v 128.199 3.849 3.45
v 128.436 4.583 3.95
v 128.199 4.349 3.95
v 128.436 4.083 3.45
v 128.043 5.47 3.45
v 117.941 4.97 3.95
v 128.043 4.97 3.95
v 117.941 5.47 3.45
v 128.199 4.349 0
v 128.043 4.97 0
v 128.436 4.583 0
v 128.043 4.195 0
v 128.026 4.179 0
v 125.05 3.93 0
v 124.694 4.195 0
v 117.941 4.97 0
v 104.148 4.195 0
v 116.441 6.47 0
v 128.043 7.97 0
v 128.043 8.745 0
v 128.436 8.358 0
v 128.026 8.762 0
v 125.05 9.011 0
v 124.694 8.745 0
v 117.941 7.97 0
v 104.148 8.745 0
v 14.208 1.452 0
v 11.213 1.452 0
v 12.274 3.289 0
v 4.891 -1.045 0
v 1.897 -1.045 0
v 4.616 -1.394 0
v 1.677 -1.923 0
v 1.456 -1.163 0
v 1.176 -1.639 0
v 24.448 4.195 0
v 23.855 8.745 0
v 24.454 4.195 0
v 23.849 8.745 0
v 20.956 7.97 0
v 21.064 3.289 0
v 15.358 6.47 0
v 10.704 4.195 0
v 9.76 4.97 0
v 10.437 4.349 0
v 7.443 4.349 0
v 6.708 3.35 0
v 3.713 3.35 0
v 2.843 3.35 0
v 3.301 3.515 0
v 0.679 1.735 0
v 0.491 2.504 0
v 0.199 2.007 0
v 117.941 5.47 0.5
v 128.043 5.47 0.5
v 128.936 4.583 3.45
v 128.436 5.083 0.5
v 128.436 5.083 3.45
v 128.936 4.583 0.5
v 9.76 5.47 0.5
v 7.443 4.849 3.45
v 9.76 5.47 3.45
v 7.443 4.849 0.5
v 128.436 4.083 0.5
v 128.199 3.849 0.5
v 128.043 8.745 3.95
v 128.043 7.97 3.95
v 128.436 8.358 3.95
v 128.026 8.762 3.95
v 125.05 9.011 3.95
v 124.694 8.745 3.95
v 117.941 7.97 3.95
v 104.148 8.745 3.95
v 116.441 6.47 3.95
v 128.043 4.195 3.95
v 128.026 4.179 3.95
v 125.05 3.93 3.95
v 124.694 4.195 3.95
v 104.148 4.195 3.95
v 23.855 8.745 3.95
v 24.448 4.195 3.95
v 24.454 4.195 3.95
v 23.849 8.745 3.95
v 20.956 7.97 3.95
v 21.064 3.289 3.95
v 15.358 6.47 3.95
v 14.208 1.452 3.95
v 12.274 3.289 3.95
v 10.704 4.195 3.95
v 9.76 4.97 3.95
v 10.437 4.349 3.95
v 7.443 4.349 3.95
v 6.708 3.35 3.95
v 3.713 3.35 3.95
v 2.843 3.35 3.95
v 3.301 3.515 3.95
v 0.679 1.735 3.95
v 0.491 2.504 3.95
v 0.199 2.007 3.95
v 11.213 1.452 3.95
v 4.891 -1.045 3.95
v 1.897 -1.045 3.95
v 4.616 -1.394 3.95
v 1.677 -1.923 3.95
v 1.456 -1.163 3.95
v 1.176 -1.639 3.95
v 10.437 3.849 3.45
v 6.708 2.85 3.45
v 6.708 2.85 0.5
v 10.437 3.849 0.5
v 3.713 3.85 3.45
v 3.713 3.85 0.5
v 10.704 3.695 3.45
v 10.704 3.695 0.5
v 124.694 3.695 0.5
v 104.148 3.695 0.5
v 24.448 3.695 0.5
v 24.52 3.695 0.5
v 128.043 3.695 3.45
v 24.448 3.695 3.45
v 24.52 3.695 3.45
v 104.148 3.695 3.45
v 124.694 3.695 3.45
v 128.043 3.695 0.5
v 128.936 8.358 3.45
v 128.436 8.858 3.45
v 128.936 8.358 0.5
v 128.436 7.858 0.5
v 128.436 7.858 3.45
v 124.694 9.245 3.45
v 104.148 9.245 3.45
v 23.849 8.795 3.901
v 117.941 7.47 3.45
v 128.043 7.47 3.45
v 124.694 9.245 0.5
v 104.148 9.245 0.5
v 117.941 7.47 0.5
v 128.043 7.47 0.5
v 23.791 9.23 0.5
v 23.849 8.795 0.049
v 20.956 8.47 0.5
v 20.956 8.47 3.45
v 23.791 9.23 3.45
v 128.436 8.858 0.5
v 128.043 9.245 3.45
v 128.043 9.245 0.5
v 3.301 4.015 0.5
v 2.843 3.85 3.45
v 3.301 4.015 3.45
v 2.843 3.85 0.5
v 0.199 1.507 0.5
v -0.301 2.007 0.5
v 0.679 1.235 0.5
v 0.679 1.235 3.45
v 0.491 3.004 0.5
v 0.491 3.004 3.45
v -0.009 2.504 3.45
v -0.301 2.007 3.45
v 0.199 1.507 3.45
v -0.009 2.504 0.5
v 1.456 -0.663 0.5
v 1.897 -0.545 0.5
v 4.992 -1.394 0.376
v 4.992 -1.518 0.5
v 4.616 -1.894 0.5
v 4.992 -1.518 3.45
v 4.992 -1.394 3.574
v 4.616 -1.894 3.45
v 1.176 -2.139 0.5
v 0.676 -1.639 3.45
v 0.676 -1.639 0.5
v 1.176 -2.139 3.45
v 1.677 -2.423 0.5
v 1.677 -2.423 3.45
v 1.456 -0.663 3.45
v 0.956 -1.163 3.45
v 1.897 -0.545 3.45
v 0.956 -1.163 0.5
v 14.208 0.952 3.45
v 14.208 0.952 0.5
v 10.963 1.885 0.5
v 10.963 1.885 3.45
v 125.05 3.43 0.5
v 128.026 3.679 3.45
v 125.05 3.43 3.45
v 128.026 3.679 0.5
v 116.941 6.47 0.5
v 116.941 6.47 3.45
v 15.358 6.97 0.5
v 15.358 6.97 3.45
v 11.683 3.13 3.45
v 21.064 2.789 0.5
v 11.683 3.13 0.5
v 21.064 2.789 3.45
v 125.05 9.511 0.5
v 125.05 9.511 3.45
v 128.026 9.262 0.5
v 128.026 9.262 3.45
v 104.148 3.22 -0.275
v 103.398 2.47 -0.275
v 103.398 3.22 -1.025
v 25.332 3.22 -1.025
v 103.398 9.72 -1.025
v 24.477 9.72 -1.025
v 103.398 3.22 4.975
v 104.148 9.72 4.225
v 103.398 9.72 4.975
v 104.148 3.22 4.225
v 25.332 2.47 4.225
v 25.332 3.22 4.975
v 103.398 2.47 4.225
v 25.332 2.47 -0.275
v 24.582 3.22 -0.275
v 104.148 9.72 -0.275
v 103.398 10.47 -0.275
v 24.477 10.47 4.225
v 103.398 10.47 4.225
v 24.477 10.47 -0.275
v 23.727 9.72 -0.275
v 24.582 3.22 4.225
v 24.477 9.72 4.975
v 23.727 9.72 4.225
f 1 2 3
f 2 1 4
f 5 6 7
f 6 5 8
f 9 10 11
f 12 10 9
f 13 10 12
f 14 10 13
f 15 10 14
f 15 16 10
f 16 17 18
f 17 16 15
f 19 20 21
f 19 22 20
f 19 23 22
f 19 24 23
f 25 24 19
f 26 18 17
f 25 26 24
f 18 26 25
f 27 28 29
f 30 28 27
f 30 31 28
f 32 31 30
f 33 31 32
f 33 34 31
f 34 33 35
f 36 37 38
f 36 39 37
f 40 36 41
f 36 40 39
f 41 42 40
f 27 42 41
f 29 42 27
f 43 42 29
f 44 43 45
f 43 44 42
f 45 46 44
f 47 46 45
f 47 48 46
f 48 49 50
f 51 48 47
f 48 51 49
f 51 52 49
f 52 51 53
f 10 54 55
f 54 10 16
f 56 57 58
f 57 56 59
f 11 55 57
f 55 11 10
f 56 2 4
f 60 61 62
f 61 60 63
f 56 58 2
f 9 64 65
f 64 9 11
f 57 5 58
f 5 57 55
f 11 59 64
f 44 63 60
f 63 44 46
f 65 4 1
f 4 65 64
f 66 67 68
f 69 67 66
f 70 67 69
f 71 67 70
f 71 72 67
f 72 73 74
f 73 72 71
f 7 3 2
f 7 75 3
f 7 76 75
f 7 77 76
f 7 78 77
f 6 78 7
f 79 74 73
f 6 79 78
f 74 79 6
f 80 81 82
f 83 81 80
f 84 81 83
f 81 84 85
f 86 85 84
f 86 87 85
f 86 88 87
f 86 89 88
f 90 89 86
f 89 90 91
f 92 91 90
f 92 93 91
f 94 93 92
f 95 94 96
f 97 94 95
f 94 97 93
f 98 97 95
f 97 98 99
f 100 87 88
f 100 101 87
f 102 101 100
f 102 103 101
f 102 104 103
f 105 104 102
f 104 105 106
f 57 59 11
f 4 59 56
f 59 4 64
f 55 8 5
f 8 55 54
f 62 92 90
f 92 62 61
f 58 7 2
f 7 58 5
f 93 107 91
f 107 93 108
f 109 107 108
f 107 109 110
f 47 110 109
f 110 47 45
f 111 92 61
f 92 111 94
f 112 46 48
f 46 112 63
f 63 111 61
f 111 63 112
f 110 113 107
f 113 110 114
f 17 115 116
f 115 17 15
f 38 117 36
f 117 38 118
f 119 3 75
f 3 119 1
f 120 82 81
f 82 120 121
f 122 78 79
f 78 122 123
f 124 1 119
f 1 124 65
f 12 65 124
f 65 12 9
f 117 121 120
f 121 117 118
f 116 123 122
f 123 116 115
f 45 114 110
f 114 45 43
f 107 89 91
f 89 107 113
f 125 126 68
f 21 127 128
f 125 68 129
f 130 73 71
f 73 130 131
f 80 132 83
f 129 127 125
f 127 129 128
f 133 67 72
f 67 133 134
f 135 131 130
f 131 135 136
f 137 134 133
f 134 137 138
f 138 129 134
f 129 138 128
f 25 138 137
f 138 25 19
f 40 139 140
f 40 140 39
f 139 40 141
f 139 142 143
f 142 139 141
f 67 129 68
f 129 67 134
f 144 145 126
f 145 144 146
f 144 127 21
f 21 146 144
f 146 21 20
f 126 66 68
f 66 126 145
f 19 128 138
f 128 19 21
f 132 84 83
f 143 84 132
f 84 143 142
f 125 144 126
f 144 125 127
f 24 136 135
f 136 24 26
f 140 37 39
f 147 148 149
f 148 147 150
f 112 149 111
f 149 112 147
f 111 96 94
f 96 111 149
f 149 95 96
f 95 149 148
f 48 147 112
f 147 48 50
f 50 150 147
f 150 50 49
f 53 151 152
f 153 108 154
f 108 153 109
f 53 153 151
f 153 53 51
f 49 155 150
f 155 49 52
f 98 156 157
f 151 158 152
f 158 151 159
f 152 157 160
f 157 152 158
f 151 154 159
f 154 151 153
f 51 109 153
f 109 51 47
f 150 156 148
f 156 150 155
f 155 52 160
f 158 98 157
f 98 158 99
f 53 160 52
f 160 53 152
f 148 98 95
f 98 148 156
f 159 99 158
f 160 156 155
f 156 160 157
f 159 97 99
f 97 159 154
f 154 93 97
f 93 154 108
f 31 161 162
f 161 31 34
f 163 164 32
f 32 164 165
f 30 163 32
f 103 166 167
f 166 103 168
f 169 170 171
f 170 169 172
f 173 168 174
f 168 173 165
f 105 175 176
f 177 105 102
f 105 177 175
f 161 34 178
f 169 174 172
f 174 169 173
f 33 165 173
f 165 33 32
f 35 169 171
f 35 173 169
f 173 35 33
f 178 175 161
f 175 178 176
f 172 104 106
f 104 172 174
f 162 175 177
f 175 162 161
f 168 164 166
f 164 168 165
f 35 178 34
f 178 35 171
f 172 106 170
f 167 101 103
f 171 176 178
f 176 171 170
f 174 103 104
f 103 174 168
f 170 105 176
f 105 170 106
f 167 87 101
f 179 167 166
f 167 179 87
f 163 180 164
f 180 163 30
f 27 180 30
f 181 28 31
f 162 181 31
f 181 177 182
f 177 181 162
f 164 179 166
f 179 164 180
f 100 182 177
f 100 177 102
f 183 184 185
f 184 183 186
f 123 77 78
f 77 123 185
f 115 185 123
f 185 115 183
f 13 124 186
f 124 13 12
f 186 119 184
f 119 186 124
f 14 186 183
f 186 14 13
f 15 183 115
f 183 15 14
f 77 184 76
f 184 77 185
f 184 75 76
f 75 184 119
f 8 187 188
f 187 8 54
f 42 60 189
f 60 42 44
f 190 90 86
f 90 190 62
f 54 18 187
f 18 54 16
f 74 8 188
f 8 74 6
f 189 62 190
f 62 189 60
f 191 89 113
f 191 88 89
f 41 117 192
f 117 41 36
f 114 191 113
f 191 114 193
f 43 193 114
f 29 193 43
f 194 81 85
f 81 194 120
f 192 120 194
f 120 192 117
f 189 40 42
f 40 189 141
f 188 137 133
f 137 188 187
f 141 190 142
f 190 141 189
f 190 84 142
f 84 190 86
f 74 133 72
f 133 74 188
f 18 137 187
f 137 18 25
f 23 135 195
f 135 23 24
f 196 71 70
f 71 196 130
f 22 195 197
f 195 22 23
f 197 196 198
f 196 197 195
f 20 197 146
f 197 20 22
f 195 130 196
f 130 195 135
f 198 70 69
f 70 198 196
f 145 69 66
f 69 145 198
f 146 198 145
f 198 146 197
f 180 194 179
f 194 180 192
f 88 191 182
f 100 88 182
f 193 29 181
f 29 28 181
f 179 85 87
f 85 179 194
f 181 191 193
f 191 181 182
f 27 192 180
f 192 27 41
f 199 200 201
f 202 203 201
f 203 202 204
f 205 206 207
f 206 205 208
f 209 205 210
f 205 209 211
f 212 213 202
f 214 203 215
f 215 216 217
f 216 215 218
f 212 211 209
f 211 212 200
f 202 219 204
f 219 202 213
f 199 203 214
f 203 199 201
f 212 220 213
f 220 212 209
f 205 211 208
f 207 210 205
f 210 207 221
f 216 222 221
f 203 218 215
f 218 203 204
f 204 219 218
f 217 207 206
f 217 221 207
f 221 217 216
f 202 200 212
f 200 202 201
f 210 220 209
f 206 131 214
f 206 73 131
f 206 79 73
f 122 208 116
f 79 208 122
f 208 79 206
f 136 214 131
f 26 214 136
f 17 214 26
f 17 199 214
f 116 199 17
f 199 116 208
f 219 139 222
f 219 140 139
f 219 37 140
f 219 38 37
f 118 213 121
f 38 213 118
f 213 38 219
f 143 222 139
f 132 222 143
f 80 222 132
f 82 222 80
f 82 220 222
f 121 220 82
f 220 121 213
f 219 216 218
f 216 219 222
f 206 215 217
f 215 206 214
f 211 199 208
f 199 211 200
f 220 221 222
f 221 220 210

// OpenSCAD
// models/fossil_support.scad
// One closed 2D polygon extruded to thickness.
// Both forked ends come from the same point generator.

// ---------- Public parameters (mm) ----------
total_length = 130;
body_width = 5.55;
thickness = 3.95;
thick_body_width = 8;
thick_thickness = 6;
middle_chamfer = 0.75;
thin_chamfer = 0.5;

lower_fork_length = 15;
upper_fork_length = 15;
fork_gap_width = 2.0;
fork_depth = 4.0;

bend_angle = 15;
bend_location = 25;
upper_bend_angle = 0;   // set to 0 for the original single-bend overall shape
upper_bend_location = 25;

// ---------- Vector helpers ----------
function v_add(a, b) = [a[0] + b[0], a[1] + b[1]];
function v_sub(a, b) = [a[0] - b[0], a[1] - b[1]];
function v_scale(v, s) = [v[0] * s, v[1] * s];
function v_perp(v) = [-v[1], v[0]];
function v_dir(angle_deg) = [cos(angle_deg), sin(angle_deg)];
function cross2(a, b) = a[0] * b[1] - a[1] * b[0];
function rev(points) = [for (i = [len(points) - 1 : -1 : 0]) points[i]];

function line_intersection(p, r, q, s) =
  let(rxs = cross2(r, s))
  abs(rxs) < 1e-9
    ? p
    : v_add(p, v_scale(r, cross2(v_sub(q, p), s) / rxs));

function frame_point(origin, axis, normal, p) =
  v_add(origin, v_add(v_scale(axis, p[0]), v_scale(normal, p[1])));

function transform_points(points, origin, axis, normal) =
  [for (p = points) frame_point(origin, axis, normal, p)];

function safe_chamfer(requested, width, height) =
  max(0, min(requested, width / 2 - 0.01, height / 2 - 0.01));

// Local fork boundary from top root to bottom root.
// Root is at x = 0 and tip is at x = fork_length.
function fork_points(fork_length, width, gap_width, fork_depth) =
  let(
    outer_y = width / 2,
    inner_y = gap_width / 2,
    prong_width = (width - gap_width) / 2,
    tip_round = min(prong_width * 0.55, 0.9),
    slot_root_r = min(inner_y, 1.0),
    slot_root_x = min(max(fork_depth, 3.5), fork_length - 3.0),
    nub_height = max(0.28, prong_width * 0.14),
    nub_start = min(fork_length - 3.0, slot_root_x + (fork_length - slot_root_x) * 0.58),
    nub_end = min(fork_length - 1.8, nub_start + max(0.35, fork_length * 0.025)),
    tip_mid_y = inner_y + prong_width / 2
  ) [
    [0, outer_y],
    [nub_start, outer_y],
    [nub_end, outer_y + nub_height],
    [fork_length - tip_round, outer_y],
    [fork_length, tip_mid_y],
    [fork_length - tip_round, inner_y],
    [slot_root_x, inner_y],
    [slot_root_x - slot_root_r, 0],
    [slot_root_x, -inner_y],
    [fork_length - tip_round, -inner_y],
    [fork_length, -tip_mid_y],
    [fork_length - tip_round, -outer_y],
    [nub_end, -(outer_y + nub_height)],
    [nub_start, -outer_y],
    [0, -outer_y]
  ];

// ---------- Centerline geometry ----------
lower_axis = v_dir(bend_angle);
middle_axis = [1, 0];
upper_axis = v_dir(upper_bend_angle);

lower_normal = v_perp(lower_axis);
middle_normal = v_perp(middle_axis);
upper_normal = v_perp(upper_axis);

lower_tip = [0, 0];
lower_root = v_add(lower_tip, v_scale(lower_axis, lower_fork_length));
lower_bend = v_add(lower_tip, v_scale(lower_axis, bend_location));

middle_length = total_length - bend_location - upper_bend_location;
upper_bend = v_add(lower_bend, v_scale(middle_axis, middle_length));
upper_tip = v_add(upper_bend, v_scale(upper_axis, upper_bend_location));
upper_root = v_add(upper_tip, v_scale(upper_axis, -upper_fork_length));

// ---------- Four non-fork polygon points ----------
lower_top_bend = line_intersection(
  v_add(lower_bend, v_scale(lower_normal, body_width / 2)), lower_axis,
  v_add(lower_bend, v_scale(middle_normal, body_width / 2)), middle_axis
);

upper_top_bend = line_intersection(
  v_add(upper_bend, v_scale(middle_normal, body_width / 2)), middle_axis,
  v_add(upper_bend, v_scale(upper_normal, body_width / 2)), upper_axis
);

upper_bottom_bend = line_intersection(
  v_add(upper_bend, v_scale(middle_normal, -body_width / 2)), middle_axis,
  v_add(upper_bend, v_scale(upper_normal, -body_width / 2)), upper_axis
);

lower_bottom_bend = line_intersection(
  v_add(lower_bend, v_scale(lower_normal, -body_width / 2)), lower_axis,
  v_add(lower_bend, v_scale(middle_normal, -body_width / 2)), middle_axis
);

middle_top_start = line_intersection(
  v_add(lower_bend, v_scale(lower_normal, thick_body_width / 2)), lower_axis,
  v_add(lower_bend, v_scale(middle_normal, thick_body_width / 2)), middle_axis
);

middle_top_end = line_intersection(
  v_add(upper_bend, v_scale(middle_normal, thick_body_width / 2)), middle_axis,
  v_add(upper_bend, v_scale(upper_normal, thick_body_width / 2)), upper_axis
);

middle_bottom_end = line_intersection(
  v_add(upper_bend, v_scale(middle_normal, -thick_body_width / 2)), middle_axis,
  v_add(upper_bend, v_scale(upper_normal, -thick_body_width / 2)), upper_axis
);

middle_bottom_start = line_intersection(
  v_add(lower_bend, v_scale(lower_normal, -thick_body_width / 2)), lower_axis,
  v_add(lower_bend, v_scale(middle_normal, -thick_body_width / 2)), middle_axis
);

// ---------- Forks ----------
fork_profile_lower = fork_points(lower_fork_length, body_width, fork_gap_width, fork_depth);
fork_profile_upper = fork_points(upper_fork_length, body_width, fork_gap_width, fork_depth);

lower_fork = transform_points(
  fork_profile_lower,
  lower_root,
  v_scale(lower_axis, -1),
  lower_normal
);

upper_fork = transform_points(
  fork_profile_upper,
  upper_root,
  upper_axis,
  upper_normal
);

outline_points = concat(
  [lower_fork[0]],
  [lower_top_bend, upper_top_bend],
  upper_fork,
  [upper_bottom_bend, lower_bottom_bend],
  rev(lower_fork)
);

middle_outline_points = [
  middle_top_start,
  middle_top_end,
  middle_bottom_end,
  middle_bottom_start
];

middle_chamfer_mm = safe_chamfer(
  middle_chamfer,
  thick_body_width,
  thick_thickness
);

thin_chamfer_mm = safe_chamfer(
  thin_chamfer,
  body_width,
  thickness
);

module octahedron(radius) {
  polyhedron(
    points = [
      [ radius, 0, 0],
      [-radius, 0, 0],
      [0,  radius, 0],
      [0, -radius, 0],
      [0, 0,  radius],
      [0, 0, -radius]
    ],
    faces = [
      [0, 2, 4],
      [2, 1, 4],
      [1, 3, 4],
      [3, 0, 4],
      [2, 0, 5],
      [1, 2, 5],
      [3, 1, 5],
      [0, 3, 5]
    ]
  );
}

module chamfered_prism(points, height, chamfer) {
  if (chamfer > 0) {
    minkowski() {
      translate([0, 0, chamfer])
        linear_extrude(height = height - 2 * chamfer)
          offset(delta = -chamfer)
            polygon(points = points);
      octahedron(chamfer);
    }
  } else {
    linear_extrude(height = height)
      polygon(points = points);
  }
}

module middle_section() {
  z0 = (thickness - thick_thickness) / 2;

  translate([0, 0, z0])
    chamfered_prism(middle_outline_points, thick_thickness, middle_chamfer_mm);
}

union() {
  chamfered_prism(outline_points, thickness, thin_chamfer_mm);
  middle_section();
}
